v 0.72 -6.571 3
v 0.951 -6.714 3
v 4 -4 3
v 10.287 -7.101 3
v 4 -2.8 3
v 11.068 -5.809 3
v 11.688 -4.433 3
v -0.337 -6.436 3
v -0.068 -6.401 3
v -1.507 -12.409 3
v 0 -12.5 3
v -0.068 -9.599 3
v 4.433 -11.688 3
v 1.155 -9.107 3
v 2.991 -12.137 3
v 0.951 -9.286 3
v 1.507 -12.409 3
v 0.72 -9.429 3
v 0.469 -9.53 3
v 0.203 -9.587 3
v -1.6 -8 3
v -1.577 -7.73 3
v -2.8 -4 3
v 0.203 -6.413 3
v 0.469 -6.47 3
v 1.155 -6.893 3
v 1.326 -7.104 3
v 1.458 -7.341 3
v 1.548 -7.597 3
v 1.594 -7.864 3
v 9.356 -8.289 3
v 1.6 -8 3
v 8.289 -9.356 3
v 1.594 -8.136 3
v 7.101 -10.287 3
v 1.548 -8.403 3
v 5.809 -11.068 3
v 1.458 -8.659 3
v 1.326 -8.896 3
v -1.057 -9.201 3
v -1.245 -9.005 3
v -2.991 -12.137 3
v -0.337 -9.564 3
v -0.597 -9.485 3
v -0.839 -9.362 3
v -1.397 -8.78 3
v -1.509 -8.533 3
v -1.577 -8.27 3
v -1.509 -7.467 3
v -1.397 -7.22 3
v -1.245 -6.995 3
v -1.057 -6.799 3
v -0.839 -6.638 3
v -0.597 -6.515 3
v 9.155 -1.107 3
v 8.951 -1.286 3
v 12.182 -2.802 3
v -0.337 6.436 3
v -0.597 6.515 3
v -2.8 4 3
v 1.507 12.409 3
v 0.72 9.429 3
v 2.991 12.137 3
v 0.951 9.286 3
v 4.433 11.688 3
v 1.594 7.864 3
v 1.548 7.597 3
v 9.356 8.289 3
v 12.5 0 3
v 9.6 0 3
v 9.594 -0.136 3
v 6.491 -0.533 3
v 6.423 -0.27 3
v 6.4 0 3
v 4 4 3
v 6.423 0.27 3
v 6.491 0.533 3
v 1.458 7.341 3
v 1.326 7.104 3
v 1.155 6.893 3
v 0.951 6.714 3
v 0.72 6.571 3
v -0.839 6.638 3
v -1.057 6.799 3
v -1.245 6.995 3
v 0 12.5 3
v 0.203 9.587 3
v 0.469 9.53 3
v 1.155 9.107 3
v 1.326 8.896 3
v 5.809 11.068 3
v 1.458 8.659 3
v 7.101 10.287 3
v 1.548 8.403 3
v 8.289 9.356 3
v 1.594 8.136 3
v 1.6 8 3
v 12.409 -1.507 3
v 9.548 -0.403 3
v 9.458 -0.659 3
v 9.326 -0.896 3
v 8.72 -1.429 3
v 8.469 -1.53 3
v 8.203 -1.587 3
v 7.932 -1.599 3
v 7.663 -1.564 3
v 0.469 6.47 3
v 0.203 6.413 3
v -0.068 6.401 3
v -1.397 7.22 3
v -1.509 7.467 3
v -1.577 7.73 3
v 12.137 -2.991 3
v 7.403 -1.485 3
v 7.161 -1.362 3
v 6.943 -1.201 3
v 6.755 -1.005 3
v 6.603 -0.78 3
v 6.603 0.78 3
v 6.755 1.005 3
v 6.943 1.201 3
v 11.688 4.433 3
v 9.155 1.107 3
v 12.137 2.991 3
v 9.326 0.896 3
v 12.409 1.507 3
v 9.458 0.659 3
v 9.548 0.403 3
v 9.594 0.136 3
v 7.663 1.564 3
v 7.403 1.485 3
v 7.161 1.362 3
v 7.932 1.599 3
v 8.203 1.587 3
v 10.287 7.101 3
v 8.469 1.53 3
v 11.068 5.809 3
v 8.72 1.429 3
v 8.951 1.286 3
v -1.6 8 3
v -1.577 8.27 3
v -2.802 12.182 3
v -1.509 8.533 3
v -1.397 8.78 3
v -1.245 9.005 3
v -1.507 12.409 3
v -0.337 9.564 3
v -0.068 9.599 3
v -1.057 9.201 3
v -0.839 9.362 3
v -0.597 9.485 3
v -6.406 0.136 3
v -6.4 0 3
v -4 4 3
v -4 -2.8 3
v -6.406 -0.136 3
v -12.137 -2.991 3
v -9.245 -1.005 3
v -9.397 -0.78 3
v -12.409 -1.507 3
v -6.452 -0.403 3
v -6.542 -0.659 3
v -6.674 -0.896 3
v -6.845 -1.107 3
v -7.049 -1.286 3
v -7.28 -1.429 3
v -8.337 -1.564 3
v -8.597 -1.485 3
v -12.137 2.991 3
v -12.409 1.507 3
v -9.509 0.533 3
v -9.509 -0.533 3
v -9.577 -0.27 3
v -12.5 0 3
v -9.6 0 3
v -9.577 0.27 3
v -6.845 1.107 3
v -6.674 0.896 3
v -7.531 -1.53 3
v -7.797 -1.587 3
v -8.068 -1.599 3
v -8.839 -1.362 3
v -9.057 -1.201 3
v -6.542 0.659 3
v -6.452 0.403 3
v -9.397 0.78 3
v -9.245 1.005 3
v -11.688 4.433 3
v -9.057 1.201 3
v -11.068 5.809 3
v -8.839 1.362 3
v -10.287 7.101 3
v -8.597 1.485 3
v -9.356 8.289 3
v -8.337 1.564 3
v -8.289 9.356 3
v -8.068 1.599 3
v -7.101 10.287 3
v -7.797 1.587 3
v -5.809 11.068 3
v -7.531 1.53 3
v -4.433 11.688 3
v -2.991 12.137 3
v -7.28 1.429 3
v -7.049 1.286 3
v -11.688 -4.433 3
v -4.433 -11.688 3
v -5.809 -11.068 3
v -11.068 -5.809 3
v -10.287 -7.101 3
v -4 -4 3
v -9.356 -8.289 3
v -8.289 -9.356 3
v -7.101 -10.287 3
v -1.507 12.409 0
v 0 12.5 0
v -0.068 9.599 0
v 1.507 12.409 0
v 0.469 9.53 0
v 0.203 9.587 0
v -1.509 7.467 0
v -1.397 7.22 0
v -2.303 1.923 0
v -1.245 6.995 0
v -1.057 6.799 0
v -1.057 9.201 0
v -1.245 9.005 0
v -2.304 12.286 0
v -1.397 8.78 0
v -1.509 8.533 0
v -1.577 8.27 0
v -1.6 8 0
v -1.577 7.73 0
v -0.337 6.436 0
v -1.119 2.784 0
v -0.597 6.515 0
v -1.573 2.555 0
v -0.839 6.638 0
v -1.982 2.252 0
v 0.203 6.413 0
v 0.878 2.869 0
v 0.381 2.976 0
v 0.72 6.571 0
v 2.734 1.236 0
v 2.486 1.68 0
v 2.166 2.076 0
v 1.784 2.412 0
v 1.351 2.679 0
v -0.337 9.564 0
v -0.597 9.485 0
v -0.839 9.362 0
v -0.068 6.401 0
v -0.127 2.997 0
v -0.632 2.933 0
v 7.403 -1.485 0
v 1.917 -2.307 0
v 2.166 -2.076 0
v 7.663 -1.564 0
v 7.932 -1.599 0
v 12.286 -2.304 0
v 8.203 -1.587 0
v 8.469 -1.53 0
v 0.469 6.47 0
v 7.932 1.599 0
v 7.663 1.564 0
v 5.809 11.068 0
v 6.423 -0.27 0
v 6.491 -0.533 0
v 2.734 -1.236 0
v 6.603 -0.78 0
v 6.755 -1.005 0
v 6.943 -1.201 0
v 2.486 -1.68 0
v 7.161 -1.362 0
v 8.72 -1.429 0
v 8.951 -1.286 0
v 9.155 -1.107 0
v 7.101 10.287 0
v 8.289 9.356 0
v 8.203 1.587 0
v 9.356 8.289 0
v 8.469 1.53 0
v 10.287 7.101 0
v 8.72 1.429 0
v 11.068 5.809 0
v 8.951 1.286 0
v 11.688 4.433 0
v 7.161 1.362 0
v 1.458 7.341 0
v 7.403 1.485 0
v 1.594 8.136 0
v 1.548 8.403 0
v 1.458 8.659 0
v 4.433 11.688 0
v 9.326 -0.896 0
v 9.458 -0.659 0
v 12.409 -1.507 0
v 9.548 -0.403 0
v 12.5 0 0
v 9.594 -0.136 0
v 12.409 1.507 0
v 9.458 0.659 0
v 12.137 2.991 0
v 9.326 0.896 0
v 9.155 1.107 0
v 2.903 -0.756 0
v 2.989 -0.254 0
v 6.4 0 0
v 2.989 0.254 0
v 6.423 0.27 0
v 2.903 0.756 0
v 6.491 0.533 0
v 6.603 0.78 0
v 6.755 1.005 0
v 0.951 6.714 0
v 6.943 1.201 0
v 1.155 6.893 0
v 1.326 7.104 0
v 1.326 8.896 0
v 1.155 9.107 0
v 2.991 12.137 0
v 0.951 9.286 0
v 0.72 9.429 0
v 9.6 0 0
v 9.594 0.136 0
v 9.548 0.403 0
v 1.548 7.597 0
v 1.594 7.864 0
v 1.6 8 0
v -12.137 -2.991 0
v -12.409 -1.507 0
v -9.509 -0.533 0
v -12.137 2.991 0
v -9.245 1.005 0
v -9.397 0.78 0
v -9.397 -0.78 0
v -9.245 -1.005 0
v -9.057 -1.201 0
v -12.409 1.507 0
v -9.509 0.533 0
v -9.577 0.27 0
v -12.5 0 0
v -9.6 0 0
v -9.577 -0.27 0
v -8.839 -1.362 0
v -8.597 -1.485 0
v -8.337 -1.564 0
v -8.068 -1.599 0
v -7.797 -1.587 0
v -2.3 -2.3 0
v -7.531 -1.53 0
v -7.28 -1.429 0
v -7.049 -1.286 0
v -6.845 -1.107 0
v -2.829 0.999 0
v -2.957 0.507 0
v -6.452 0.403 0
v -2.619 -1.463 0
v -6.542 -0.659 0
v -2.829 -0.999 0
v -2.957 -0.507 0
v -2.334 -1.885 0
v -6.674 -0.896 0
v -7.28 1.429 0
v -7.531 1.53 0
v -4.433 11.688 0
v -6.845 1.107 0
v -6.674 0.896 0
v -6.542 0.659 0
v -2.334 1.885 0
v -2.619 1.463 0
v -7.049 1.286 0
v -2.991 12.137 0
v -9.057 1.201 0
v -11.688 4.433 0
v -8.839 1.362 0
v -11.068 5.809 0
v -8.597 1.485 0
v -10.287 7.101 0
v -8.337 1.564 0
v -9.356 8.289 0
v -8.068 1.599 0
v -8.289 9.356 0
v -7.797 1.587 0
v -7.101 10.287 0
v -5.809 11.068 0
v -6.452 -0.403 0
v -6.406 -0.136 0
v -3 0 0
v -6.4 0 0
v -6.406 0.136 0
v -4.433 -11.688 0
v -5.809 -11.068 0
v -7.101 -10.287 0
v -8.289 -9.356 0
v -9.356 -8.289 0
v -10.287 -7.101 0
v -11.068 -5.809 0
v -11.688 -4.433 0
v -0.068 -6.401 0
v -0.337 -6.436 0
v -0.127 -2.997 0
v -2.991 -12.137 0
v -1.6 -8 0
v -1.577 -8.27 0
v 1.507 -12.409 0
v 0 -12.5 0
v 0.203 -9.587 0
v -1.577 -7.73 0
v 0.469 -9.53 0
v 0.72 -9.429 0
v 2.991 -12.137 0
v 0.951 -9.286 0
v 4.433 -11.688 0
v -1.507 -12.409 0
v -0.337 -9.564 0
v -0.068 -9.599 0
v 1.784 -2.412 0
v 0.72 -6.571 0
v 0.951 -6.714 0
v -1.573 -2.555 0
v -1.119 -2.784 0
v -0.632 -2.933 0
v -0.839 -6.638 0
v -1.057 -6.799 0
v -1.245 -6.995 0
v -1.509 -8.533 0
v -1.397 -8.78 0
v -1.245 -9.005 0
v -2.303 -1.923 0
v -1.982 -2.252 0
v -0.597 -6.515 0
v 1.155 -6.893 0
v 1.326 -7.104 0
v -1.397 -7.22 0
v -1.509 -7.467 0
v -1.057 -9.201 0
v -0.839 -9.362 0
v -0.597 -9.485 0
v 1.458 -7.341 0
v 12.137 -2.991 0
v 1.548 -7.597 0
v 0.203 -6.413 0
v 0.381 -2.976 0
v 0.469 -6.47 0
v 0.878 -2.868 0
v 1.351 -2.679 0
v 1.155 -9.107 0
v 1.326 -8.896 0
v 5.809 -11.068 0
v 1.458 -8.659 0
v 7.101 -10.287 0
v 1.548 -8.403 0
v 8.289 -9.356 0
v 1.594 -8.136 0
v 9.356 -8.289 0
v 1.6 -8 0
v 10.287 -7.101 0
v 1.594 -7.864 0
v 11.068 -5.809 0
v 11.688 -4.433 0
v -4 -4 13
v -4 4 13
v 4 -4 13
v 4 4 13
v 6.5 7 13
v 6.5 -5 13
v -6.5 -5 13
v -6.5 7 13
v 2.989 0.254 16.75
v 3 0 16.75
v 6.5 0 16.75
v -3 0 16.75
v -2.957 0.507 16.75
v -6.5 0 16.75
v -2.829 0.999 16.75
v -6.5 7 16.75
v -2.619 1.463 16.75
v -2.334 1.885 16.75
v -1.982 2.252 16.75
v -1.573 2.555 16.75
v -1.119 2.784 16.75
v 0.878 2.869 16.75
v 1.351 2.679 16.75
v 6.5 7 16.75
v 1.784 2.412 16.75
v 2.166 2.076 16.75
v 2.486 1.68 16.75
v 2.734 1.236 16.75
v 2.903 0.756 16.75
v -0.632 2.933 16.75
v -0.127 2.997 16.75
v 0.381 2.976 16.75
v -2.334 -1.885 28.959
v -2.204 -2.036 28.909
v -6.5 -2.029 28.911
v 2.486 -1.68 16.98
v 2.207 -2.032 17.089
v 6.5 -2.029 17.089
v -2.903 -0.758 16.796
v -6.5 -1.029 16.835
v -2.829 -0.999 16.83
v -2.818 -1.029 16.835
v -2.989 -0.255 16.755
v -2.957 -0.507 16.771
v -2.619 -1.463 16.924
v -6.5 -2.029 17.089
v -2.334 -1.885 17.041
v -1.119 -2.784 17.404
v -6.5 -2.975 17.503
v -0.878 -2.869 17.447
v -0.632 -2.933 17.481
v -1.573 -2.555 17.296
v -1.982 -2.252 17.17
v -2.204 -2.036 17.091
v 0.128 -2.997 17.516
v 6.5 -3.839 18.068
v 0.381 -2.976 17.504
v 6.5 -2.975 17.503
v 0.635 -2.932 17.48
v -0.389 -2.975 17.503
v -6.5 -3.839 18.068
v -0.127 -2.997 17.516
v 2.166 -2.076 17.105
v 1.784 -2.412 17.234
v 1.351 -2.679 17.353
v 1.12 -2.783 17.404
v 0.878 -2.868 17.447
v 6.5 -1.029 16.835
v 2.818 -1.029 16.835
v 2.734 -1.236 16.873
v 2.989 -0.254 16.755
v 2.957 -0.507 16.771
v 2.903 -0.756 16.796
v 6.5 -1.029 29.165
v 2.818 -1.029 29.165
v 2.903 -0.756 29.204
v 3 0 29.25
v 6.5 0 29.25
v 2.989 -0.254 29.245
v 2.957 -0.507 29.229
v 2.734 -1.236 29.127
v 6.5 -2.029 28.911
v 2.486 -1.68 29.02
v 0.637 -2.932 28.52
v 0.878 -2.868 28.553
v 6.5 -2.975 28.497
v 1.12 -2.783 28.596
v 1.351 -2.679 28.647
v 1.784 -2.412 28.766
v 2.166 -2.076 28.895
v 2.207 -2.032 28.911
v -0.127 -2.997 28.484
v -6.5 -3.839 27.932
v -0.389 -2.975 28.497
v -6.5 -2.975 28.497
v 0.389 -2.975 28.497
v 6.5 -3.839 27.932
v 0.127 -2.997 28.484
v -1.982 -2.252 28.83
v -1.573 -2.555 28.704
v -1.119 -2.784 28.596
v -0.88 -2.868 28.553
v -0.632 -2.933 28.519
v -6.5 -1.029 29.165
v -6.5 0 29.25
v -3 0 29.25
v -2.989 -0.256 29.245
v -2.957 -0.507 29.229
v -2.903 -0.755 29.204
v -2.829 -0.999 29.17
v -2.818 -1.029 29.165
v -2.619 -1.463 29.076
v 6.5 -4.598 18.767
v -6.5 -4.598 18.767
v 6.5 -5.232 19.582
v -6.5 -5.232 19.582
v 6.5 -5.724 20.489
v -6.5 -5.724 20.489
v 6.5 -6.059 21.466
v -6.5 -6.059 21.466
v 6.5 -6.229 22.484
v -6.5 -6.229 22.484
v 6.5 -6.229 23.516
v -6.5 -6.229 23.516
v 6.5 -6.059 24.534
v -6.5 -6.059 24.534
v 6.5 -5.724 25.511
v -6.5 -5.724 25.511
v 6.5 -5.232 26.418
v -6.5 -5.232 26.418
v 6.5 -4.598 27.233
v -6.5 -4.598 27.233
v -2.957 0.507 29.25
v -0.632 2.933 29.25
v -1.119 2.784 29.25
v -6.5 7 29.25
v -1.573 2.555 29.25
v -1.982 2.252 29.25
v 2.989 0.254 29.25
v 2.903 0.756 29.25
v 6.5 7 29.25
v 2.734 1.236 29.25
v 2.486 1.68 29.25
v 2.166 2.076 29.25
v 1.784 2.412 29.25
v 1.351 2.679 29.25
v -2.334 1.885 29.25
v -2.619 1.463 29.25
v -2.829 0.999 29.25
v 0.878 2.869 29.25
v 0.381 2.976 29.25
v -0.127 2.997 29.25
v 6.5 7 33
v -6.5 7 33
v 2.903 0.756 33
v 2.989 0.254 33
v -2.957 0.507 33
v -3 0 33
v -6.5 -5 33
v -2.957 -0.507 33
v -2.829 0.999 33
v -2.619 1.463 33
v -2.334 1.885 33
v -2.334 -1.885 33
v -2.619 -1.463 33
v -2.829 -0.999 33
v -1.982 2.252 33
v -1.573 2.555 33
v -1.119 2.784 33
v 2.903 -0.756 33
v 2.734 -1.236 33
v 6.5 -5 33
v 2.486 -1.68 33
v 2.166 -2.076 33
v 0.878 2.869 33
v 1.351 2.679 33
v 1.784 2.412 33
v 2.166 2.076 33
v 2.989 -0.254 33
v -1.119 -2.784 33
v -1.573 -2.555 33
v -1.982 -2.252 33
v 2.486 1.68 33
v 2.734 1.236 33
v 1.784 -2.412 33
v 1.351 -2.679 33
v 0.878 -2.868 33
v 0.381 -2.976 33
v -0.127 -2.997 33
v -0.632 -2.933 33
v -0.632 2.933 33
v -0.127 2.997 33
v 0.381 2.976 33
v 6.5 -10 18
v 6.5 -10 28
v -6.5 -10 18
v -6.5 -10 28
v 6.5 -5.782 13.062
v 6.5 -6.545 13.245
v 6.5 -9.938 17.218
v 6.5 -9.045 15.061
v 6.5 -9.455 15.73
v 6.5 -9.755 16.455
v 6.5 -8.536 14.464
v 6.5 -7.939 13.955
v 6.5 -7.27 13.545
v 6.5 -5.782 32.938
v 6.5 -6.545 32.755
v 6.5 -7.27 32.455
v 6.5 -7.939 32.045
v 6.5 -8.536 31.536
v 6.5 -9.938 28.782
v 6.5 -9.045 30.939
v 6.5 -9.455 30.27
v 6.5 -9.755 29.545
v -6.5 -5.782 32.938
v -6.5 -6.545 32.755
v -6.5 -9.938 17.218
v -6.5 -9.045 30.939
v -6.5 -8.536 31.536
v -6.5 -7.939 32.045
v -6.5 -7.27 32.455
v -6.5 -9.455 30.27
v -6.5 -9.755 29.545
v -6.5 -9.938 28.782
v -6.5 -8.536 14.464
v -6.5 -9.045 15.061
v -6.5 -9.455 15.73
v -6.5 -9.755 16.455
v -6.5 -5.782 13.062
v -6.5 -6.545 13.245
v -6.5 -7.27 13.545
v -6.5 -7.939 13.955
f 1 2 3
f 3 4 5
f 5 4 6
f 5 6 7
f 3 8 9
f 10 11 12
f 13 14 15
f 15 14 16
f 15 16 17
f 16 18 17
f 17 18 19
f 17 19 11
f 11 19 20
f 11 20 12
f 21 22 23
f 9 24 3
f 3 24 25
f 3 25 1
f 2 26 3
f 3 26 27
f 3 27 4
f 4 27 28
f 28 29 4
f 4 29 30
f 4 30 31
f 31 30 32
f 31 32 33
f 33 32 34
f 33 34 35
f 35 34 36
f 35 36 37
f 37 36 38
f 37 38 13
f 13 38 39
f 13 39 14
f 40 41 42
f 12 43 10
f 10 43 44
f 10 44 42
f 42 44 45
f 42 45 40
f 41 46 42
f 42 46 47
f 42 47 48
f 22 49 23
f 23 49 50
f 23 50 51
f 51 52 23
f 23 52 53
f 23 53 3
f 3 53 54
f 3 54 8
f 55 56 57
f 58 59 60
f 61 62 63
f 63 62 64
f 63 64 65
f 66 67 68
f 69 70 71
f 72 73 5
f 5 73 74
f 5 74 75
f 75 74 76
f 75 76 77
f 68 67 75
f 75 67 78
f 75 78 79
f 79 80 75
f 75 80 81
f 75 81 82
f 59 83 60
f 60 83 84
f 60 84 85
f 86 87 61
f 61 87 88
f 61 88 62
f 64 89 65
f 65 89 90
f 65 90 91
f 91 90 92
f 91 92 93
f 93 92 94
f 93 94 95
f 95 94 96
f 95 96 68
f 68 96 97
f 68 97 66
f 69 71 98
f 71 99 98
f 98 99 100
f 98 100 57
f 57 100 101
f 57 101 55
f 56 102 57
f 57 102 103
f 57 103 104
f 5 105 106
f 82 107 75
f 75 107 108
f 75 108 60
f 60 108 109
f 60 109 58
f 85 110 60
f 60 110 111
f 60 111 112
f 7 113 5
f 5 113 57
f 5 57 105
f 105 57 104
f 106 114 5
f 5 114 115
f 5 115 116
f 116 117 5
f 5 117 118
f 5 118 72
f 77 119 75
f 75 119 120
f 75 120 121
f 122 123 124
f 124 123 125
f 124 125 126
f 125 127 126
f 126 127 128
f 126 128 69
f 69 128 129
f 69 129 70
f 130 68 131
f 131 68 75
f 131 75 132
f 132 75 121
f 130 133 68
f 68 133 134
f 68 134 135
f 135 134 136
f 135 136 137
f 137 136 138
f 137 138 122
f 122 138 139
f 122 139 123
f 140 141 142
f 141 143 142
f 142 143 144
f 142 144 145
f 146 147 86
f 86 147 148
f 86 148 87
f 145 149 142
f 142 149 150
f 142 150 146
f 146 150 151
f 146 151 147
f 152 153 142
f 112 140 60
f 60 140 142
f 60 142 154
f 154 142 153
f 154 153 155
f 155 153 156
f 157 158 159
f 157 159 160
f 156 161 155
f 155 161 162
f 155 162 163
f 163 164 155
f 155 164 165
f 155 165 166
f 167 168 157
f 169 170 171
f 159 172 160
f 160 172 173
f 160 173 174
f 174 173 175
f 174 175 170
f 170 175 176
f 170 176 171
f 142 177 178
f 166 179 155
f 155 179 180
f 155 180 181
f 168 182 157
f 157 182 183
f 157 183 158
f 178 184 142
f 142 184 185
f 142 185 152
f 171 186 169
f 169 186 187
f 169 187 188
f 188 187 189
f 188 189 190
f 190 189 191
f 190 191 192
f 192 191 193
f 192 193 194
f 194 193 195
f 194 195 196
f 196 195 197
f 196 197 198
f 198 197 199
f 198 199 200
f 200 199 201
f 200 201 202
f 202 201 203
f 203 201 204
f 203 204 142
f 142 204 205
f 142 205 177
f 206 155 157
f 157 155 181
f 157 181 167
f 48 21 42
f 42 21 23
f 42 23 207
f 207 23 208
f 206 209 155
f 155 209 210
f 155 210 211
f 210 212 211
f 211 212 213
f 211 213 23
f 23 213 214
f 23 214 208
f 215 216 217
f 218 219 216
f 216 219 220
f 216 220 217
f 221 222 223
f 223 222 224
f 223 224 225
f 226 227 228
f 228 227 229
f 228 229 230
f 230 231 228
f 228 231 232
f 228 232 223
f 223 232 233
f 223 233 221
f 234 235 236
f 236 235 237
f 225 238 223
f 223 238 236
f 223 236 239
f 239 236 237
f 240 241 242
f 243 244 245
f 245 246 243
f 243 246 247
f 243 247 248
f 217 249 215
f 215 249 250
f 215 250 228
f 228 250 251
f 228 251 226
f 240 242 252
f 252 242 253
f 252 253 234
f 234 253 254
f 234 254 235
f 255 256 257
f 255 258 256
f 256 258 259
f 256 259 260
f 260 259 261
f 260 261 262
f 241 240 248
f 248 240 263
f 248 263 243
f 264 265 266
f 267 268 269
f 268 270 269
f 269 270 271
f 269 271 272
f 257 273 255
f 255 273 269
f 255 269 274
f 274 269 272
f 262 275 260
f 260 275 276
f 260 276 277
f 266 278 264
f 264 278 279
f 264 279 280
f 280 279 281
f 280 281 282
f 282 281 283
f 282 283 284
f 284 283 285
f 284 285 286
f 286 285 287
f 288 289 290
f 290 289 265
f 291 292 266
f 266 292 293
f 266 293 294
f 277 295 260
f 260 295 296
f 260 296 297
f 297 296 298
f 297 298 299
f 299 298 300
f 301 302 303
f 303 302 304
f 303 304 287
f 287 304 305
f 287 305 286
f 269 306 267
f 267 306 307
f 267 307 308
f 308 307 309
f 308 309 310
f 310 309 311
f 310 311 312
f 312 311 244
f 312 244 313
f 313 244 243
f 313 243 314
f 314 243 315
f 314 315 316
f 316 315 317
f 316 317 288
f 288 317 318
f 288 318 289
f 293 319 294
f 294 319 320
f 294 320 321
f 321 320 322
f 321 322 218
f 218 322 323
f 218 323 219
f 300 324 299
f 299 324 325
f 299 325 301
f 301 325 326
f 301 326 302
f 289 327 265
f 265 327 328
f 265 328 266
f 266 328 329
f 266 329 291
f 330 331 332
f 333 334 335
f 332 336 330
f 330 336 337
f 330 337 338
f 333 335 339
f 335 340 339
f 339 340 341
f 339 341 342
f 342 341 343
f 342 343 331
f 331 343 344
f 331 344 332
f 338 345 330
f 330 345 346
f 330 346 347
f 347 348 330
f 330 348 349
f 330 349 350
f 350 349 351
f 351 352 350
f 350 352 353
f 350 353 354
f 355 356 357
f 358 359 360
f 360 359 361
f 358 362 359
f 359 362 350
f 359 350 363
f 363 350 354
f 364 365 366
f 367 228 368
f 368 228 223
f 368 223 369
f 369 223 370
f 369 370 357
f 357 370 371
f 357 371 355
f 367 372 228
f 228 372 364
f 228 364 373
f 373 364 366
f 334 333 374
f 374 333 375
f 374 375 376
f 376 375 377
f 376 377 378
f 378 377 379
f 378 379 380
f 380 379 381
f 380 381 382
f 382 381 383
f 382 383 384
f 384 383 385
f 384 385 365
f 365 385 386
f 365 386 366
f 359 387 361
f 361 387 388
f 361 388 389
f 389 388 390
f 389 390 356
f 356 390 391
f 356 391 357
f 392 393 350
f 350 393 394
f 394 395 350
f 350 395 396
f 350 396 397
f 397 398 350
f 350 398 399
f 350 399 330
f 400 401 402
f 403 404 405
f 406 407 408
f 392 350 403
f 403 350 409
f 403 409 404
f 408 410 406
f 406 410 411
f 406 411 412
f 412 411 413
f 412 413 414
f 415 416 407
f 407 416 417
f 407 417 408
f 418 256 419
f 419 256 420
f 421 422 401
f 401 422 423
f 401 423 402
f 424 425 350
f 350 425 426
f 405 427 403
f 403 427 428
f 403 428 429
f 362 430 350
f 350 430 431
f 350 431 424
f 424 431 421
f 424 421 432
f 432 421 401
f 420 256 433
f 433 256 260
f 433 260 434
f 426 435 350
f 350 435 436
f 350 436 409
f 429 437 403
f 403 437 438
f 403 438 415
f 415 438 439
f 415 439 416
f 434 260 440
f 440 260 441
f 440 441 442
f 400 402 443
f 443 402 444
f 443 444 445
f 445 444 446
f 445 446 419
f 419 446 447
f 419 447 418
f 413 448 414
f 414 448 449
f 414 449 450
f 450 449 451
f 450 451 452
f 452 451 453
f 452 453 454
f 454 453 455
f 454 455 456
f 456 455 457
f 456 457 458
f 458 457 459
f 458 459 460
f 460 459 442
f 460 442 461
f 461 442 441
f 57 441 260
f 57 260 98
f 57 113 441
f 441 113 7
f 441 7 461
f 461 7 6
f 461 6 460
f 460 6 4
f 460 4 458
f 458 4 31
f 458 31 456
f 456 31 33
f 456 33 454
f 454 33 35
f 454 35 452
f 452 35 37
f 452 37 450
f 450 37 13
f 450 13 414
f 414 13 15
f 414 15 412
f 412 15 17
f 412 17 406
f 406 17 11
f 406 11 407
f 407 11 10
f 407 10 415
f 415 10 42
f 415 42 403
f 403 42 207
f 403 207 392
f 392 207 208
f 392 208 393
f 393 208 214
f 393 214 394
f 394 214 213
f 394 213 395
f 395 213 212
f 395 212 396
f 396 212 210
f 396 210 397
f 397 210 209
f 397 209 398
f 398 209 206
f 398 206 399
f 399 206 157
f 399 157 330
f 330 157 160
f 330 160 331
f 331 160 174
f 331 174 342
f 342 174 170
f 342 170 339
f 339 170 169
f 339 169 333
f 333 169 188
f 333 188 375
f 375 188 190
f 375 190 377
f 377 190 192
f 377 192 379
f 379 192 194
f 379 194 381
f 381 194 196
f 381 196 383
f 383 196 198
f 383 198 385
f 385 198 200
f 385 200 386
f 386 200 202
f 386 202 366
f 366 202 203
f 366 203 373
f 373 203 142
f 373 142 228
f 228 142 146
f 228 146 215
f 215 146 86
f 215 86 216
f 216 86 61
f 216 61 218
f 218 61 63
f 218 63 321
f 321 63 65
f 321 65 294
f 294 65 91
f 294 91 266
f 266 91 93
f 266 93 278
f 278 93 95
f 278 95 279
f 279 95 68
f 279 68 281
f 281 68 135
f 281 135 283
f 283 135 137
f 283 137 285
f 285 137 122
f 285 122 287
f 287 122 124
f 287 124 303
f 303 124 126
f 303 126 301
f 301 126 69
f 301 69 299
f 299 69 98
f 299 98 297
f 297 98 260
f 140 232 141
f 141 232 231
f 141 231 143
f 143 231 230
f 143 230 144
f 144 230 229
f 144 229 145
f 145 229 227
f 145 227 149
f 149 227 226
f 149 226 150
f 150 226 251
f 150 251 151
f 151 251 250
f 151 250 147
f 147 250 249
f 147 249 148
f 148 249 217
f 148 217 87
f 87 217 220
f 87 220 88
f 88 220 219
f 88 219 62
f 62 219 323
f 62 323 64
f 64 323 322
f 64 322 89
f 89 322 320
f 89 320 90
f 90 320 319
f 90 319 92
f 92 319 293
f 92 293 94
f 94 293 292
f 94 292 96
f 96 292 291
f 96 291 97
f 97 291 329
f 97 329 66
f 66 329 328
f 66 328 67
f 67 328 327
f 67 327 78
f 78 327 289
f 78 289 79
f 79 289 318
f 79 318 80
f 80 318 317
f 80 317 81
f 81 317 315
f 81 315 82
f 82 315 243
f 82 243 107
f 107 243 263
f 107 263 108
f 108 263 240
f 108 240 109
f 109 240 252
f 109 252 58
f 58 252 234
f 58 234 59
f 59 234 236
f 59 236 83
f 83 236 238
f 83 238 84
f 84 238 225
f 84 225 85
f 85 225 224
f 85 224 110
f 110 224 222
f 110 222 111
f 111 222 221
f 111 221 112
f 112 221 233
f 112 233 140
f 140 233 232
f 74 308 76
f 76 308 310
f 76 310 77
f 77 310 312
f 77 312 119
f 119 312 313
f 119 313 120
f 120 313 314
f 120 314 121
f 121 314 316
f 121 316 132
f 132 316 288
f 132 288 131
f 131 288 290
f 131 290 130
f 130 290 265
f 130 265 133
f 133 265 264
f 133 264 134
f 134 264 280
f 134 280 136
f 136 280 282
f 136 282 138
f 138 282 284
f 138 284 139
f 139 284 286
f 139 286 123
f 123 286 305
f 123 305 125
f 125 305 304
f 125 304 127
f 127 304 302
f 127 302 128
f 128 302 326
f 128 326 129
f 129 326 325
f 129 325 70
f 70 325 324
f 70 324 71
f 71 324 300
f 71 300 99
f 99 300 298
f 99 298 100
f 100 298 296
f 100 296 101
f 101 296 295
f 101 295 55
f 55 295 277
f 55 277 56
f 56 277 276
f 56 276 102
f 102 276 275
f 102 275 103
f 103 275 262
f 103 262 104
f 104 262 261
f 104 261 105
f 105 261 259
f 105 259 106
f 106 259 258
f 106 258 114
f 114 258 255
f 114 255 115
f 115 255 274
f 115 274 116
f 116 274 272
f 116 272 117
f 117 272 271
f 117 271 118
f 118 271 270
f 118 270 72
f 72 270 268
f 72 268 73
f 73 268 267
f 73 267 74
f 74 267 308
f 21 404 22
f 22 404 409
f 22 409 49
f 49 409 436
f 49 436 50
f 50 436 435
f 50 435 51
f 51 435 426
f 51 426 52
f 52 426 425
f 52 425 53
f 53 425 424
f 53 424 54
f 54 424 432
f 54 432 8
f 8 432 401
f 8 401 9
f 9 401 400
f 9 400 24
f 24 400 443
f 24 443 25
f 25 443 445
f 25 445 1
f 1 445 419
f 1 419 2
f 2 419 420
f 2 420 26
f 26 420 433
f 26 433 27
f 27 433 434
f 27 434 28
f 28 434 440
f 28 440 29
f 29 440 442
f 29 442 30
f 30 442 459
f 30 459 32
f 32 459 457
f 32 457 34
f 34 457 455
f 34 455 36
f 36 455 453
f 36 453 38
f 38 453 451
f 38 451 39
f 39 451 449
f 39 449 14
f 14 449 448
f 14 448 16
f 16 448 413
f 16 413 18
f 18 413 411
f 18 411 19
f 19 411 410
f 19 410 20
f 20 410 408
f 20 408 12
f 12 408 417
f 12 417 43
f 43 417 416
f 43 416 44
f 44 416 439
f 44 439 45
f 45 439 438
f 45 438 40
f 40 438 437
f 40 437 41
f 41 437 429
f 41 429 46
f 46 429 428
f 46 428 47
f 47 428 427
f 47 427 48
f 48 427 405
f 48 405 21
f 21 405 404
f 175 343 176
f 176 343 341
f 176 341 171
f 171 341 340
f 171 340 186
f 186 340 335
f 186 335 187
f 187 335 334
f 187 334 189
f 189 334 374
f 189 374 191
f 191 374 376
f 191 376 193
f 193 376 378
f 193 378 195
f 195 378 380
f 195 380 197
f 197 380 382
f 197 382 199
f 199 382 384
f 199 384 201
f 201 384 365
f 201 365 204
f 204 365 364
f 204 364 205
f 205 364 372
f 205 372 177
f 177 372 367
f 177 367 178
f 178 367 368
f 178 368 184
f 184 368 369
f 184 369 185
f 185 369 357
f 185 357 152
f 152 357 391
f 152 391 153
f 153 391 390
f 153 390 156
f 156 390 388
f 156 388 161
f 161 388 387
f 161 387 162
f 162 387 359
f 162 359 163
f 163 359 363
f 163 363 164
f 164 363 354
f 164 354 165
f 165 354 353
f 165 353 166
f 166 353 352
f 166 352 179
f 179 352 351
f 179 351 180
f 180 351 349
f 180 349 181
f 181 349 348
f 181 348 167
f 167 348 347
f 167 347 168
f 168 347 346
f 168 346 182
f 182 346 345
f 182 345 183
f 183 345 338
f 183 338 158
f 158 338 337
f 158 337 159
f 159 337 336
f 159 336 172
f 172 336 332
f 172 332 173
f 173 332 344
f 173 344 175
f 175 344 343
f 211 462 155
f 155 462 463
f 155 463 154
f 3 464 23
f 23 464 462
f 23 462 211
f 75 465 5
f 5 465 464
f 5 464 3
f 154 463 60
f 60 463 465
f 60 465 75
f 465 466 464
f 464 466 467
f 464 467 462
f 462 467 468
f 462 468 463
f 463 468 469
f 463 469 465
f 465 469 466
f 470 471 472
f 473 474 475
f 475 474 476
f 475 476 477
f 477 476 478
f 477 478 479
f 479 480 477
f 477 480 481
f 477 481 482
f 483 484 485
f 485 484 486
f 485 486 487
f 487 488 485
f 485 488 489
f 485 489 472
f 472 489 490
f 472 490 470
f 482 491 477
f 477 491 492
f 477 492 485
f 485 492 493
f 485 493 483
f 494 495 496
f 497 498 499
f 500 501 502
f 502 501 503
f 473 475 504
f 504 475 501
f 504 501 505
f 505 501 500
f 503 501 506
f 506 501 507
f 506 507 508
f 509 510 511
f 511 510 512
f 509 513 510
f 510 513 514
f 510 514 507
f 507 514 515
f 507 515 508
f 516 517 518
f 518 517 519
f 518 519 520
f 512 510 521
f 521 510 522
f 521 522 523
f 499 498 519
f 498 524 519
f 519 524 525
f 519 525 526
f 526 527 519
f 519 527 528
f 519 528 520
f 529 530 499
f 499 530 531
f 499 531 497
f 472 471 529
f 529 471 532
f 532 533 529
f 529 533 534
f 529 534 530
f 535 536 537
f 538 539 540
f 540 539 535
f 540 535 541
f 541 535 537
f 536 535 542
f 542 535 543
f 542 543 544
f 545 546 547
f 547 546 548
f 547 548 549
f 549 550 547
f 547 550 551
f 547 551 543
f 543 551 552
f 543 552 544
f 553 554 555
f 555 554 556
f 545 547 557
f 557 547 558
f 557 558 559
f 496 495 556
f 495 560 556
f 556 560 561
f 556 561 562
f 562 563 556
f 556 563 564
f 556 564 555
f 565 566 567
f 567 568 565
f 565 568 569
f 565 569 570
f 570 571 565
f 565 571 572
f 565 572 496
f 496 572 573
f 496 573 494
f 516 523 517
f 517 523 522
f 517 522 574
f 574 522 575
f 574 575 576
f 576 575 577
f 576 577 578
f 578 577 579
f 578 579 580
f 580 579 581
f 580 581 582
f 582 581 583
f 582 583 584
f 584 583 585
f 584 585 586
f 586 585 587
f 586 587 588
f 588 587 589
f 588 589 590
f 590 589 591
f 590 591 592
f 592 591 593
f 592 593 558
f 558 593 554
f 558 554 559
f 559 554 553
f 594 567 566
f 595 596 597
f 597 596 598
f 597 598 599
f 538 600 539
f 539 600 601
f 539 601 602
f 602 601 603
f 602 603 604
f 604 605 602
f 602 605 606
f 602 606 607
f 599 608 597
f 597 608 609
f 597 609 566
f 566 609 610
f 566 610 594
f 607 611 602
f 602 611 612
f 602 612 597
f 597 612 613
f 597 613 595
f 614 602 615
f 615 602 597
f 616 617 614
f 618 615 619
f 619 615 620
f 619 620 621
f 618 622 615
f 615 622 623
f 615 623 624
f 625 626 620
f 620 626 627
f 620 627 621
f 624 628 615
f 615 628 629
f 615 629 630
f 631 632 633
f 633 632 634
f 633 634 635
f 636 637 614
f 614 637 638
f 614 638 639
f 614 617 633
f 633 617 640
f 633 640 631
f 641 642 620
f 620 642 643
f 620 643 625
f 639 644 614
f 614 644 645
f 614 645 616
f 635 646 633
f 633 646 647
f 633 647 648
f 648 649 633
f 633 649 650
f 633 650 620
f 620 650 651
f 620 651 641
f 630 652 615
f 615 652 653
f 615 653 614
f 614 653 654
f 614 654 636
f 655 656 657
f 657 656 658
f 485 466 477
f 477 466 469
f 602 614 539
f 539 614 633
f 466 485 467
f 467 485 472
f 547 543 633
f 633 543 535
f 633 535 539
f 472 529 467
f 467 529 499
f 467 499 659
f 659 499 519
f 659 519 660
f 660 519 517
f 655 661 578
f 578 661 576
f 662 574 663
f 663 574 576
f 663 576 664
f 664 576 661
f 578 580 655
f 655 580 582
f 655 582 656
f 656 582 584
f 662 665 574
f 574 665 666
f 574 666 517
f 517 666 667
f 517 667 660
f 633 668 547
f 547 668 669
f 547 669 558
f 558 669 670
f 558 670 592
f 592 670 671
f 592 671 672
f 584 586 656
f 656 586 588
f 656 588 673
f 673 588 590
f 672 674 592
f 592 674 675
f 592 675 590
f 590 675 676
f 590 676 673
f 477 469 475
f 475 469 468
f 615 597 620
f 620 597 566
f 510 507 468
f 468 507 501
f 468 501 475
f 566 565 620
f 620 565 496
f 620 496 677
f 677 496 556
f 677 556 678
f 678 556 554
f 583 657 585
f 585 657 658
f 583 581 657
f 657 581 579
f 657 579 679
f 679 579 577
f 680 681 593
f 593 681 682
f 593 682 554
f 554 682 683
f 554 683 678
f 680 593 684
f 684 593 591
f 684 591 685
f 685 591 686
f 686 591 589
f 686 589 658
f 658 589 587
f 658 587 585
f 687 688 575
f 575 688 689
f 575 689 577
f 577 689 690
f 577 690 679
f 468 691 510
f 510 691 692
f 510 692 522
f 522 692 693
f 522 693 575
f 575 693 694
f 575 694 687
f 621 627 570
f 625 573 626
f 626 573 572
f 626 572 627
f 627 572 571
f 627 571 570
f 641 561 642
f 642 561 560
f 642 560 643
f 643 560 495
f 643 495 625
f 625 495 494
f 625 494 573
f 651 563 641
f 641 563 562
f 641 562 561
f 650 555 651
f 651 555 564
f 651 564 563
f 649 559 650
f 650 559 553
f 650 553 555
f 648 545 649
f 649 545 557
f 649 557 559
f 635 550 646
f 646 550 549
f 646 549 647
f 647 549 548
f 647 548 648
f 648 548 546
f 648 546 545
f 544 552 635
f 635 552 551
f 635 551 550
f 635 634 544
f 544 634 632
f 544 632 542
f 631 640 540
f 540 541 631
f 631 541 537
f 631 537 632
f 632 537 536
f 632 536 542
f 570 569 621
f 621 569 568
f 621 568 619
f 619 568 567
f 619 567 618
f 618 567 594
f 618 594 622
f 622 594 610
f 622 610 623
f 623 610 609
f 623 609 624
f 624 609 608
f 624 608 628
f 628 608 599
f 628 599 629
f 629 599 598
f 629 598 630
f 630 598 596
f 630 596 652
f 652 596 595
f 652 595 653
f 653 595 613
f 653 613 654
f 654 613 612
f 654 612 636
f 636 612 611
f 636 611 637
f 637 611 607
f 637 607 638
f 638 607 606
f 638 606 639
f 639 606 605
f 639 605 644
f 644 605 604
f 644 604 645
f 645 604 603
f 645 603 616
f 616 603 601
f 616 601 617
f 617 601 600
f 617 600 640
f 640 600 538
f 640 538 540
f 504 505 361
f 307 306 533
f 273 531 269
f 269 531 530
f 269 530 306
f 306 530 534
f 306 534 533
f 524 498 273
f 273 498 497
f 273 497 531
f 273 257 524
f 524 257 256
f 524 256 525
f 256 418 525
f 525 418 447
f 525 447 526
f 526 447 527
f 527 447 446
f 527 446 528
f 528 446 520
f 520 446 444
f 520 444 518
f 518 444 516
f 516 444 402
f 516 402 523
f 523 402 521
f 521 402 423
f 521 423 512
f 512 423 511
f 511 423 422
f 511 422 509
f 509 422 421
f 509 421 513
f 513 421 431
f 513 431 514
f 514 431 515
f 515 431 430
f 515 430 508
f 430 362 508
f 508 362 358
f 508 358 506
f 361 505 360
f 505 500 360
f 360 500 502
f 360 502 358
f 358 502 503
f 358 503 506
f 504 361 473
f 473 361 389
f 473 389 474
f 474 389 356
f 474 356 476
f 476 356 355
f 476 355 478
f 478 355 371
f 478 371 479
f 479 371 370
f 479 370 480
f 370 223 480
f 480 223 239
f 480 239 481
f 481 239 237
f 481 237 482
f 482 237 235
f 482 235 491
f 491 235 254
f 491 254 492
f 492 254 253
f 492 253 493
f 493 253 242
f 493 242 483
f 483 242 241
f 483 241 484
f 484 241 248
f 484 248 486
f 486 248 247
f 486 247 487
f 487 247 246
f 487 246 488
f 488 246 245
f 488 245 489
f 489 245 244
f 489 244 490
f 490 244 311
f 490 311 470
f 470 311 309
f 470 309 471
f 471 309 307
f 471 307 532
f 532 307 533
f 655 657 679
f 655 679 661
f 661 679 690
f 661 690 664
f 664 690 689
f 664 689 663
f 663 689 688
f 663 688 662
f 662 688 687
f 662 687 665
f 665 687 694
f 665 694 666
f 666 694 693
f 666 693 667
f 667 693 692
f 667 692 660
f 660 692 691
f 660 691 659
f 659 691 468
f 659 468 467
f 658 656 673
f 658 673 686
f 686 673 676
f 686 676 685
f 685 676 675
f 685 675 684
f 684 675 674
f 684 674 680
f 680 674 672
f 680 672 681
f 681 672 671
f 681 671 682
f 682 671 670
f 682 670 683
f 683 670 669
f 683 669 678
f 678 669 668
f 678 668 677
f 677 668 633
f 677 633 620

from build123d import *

# Parameters (mm, degrees)
SKETCH_1_R          = 12.5
SKETCH_1_R_2        = 1.6
EXTRUDE_1_DEPTH     = 3
SKETCH_2_W          = 8
SKETCH_2_H          = 8
EXTRUDE_2_DEPTH     = 10
EXTRUDE_3_DEPTH     = 6.5
SKETCH_5_R          = 3
CUT_EXTRUDE_1_DEPTH = 38.436613095
FILLET_1_R          = 5


with BuildPart() as part:
    # 草图1 → 凸台-拉伸1 (new body)
    with BuildSketch(Plane.XY):
        Circle(SKETCH_1_R)
        with Locations((0, 8)):
            Circle(SKETCH_1_R_2, mode=Mode.SUBTRACT)
        with Locations((8, 0)):
            Circle(SKETCH_1_R_2, mode=Mode.SUBTRACT)
        with Locations((0, -8)):
            Circle(SKETCH_1_R_2, mode=Mode.SUBTRACT)
        with Locations((-8, 0)):
            Circle(SKETCH_1_R_2, mode=Mode.SUBTRACT)
    extrude(amount=EXTRUDE_1_DEPTH)

    # 草图2 → 凸台-拉伸2 (add)
    with BuildSketch(Plane.XY.offset(3)):
        Rectangle(SKETCH_2_W, SKETCH_2_H)
    extrude(amount=EXTRUDE_2_DEPTH)

    # 草图4 → 凸台-拉伸3 (add, symmetric)
    with BuildSketch(Plane.ZY):
        with BuildLine():
            Line((13, -10), (33, -10))
            Line((33, -10), (33, 7))
            Line((33, 7), (29.25, 7))
            Line((29.25, 7), (29.25, 0))
            ThreePointArc((29.25, 0), (23, -6.25), (16.75, 0))
            Line((16.75, 0), (16.75, 7))
            Line((16.75, 7), (13, 7))
            Line((13, 7), (13, -10))
        make_face()
    extrude(amount=EXTRUDE_3_DEPTH, both=True)

    # 草图5 → 切除-拉伸1 (cut, through all)
    with BuildSketch(Plane(origin=(0, 0, 0), x_dir=(-1, 0, 0), z_dir=(0, 0, -1))):
        Circle(SKETCH_5_R)
    extrude(amount=-CUT_EXTRUDE_1_DEPTH, mode=Mode.SUBTRACT)

    # 圆角1
    fillet_1_edges = [part.edges().sort_by_distance(p)[0] for p in [
        (0, -10, 13),
        (0, -10, 33),
    ]]
    fillet(fillet_1_edges, radius=FILLET_1_R)


solid = part.part
